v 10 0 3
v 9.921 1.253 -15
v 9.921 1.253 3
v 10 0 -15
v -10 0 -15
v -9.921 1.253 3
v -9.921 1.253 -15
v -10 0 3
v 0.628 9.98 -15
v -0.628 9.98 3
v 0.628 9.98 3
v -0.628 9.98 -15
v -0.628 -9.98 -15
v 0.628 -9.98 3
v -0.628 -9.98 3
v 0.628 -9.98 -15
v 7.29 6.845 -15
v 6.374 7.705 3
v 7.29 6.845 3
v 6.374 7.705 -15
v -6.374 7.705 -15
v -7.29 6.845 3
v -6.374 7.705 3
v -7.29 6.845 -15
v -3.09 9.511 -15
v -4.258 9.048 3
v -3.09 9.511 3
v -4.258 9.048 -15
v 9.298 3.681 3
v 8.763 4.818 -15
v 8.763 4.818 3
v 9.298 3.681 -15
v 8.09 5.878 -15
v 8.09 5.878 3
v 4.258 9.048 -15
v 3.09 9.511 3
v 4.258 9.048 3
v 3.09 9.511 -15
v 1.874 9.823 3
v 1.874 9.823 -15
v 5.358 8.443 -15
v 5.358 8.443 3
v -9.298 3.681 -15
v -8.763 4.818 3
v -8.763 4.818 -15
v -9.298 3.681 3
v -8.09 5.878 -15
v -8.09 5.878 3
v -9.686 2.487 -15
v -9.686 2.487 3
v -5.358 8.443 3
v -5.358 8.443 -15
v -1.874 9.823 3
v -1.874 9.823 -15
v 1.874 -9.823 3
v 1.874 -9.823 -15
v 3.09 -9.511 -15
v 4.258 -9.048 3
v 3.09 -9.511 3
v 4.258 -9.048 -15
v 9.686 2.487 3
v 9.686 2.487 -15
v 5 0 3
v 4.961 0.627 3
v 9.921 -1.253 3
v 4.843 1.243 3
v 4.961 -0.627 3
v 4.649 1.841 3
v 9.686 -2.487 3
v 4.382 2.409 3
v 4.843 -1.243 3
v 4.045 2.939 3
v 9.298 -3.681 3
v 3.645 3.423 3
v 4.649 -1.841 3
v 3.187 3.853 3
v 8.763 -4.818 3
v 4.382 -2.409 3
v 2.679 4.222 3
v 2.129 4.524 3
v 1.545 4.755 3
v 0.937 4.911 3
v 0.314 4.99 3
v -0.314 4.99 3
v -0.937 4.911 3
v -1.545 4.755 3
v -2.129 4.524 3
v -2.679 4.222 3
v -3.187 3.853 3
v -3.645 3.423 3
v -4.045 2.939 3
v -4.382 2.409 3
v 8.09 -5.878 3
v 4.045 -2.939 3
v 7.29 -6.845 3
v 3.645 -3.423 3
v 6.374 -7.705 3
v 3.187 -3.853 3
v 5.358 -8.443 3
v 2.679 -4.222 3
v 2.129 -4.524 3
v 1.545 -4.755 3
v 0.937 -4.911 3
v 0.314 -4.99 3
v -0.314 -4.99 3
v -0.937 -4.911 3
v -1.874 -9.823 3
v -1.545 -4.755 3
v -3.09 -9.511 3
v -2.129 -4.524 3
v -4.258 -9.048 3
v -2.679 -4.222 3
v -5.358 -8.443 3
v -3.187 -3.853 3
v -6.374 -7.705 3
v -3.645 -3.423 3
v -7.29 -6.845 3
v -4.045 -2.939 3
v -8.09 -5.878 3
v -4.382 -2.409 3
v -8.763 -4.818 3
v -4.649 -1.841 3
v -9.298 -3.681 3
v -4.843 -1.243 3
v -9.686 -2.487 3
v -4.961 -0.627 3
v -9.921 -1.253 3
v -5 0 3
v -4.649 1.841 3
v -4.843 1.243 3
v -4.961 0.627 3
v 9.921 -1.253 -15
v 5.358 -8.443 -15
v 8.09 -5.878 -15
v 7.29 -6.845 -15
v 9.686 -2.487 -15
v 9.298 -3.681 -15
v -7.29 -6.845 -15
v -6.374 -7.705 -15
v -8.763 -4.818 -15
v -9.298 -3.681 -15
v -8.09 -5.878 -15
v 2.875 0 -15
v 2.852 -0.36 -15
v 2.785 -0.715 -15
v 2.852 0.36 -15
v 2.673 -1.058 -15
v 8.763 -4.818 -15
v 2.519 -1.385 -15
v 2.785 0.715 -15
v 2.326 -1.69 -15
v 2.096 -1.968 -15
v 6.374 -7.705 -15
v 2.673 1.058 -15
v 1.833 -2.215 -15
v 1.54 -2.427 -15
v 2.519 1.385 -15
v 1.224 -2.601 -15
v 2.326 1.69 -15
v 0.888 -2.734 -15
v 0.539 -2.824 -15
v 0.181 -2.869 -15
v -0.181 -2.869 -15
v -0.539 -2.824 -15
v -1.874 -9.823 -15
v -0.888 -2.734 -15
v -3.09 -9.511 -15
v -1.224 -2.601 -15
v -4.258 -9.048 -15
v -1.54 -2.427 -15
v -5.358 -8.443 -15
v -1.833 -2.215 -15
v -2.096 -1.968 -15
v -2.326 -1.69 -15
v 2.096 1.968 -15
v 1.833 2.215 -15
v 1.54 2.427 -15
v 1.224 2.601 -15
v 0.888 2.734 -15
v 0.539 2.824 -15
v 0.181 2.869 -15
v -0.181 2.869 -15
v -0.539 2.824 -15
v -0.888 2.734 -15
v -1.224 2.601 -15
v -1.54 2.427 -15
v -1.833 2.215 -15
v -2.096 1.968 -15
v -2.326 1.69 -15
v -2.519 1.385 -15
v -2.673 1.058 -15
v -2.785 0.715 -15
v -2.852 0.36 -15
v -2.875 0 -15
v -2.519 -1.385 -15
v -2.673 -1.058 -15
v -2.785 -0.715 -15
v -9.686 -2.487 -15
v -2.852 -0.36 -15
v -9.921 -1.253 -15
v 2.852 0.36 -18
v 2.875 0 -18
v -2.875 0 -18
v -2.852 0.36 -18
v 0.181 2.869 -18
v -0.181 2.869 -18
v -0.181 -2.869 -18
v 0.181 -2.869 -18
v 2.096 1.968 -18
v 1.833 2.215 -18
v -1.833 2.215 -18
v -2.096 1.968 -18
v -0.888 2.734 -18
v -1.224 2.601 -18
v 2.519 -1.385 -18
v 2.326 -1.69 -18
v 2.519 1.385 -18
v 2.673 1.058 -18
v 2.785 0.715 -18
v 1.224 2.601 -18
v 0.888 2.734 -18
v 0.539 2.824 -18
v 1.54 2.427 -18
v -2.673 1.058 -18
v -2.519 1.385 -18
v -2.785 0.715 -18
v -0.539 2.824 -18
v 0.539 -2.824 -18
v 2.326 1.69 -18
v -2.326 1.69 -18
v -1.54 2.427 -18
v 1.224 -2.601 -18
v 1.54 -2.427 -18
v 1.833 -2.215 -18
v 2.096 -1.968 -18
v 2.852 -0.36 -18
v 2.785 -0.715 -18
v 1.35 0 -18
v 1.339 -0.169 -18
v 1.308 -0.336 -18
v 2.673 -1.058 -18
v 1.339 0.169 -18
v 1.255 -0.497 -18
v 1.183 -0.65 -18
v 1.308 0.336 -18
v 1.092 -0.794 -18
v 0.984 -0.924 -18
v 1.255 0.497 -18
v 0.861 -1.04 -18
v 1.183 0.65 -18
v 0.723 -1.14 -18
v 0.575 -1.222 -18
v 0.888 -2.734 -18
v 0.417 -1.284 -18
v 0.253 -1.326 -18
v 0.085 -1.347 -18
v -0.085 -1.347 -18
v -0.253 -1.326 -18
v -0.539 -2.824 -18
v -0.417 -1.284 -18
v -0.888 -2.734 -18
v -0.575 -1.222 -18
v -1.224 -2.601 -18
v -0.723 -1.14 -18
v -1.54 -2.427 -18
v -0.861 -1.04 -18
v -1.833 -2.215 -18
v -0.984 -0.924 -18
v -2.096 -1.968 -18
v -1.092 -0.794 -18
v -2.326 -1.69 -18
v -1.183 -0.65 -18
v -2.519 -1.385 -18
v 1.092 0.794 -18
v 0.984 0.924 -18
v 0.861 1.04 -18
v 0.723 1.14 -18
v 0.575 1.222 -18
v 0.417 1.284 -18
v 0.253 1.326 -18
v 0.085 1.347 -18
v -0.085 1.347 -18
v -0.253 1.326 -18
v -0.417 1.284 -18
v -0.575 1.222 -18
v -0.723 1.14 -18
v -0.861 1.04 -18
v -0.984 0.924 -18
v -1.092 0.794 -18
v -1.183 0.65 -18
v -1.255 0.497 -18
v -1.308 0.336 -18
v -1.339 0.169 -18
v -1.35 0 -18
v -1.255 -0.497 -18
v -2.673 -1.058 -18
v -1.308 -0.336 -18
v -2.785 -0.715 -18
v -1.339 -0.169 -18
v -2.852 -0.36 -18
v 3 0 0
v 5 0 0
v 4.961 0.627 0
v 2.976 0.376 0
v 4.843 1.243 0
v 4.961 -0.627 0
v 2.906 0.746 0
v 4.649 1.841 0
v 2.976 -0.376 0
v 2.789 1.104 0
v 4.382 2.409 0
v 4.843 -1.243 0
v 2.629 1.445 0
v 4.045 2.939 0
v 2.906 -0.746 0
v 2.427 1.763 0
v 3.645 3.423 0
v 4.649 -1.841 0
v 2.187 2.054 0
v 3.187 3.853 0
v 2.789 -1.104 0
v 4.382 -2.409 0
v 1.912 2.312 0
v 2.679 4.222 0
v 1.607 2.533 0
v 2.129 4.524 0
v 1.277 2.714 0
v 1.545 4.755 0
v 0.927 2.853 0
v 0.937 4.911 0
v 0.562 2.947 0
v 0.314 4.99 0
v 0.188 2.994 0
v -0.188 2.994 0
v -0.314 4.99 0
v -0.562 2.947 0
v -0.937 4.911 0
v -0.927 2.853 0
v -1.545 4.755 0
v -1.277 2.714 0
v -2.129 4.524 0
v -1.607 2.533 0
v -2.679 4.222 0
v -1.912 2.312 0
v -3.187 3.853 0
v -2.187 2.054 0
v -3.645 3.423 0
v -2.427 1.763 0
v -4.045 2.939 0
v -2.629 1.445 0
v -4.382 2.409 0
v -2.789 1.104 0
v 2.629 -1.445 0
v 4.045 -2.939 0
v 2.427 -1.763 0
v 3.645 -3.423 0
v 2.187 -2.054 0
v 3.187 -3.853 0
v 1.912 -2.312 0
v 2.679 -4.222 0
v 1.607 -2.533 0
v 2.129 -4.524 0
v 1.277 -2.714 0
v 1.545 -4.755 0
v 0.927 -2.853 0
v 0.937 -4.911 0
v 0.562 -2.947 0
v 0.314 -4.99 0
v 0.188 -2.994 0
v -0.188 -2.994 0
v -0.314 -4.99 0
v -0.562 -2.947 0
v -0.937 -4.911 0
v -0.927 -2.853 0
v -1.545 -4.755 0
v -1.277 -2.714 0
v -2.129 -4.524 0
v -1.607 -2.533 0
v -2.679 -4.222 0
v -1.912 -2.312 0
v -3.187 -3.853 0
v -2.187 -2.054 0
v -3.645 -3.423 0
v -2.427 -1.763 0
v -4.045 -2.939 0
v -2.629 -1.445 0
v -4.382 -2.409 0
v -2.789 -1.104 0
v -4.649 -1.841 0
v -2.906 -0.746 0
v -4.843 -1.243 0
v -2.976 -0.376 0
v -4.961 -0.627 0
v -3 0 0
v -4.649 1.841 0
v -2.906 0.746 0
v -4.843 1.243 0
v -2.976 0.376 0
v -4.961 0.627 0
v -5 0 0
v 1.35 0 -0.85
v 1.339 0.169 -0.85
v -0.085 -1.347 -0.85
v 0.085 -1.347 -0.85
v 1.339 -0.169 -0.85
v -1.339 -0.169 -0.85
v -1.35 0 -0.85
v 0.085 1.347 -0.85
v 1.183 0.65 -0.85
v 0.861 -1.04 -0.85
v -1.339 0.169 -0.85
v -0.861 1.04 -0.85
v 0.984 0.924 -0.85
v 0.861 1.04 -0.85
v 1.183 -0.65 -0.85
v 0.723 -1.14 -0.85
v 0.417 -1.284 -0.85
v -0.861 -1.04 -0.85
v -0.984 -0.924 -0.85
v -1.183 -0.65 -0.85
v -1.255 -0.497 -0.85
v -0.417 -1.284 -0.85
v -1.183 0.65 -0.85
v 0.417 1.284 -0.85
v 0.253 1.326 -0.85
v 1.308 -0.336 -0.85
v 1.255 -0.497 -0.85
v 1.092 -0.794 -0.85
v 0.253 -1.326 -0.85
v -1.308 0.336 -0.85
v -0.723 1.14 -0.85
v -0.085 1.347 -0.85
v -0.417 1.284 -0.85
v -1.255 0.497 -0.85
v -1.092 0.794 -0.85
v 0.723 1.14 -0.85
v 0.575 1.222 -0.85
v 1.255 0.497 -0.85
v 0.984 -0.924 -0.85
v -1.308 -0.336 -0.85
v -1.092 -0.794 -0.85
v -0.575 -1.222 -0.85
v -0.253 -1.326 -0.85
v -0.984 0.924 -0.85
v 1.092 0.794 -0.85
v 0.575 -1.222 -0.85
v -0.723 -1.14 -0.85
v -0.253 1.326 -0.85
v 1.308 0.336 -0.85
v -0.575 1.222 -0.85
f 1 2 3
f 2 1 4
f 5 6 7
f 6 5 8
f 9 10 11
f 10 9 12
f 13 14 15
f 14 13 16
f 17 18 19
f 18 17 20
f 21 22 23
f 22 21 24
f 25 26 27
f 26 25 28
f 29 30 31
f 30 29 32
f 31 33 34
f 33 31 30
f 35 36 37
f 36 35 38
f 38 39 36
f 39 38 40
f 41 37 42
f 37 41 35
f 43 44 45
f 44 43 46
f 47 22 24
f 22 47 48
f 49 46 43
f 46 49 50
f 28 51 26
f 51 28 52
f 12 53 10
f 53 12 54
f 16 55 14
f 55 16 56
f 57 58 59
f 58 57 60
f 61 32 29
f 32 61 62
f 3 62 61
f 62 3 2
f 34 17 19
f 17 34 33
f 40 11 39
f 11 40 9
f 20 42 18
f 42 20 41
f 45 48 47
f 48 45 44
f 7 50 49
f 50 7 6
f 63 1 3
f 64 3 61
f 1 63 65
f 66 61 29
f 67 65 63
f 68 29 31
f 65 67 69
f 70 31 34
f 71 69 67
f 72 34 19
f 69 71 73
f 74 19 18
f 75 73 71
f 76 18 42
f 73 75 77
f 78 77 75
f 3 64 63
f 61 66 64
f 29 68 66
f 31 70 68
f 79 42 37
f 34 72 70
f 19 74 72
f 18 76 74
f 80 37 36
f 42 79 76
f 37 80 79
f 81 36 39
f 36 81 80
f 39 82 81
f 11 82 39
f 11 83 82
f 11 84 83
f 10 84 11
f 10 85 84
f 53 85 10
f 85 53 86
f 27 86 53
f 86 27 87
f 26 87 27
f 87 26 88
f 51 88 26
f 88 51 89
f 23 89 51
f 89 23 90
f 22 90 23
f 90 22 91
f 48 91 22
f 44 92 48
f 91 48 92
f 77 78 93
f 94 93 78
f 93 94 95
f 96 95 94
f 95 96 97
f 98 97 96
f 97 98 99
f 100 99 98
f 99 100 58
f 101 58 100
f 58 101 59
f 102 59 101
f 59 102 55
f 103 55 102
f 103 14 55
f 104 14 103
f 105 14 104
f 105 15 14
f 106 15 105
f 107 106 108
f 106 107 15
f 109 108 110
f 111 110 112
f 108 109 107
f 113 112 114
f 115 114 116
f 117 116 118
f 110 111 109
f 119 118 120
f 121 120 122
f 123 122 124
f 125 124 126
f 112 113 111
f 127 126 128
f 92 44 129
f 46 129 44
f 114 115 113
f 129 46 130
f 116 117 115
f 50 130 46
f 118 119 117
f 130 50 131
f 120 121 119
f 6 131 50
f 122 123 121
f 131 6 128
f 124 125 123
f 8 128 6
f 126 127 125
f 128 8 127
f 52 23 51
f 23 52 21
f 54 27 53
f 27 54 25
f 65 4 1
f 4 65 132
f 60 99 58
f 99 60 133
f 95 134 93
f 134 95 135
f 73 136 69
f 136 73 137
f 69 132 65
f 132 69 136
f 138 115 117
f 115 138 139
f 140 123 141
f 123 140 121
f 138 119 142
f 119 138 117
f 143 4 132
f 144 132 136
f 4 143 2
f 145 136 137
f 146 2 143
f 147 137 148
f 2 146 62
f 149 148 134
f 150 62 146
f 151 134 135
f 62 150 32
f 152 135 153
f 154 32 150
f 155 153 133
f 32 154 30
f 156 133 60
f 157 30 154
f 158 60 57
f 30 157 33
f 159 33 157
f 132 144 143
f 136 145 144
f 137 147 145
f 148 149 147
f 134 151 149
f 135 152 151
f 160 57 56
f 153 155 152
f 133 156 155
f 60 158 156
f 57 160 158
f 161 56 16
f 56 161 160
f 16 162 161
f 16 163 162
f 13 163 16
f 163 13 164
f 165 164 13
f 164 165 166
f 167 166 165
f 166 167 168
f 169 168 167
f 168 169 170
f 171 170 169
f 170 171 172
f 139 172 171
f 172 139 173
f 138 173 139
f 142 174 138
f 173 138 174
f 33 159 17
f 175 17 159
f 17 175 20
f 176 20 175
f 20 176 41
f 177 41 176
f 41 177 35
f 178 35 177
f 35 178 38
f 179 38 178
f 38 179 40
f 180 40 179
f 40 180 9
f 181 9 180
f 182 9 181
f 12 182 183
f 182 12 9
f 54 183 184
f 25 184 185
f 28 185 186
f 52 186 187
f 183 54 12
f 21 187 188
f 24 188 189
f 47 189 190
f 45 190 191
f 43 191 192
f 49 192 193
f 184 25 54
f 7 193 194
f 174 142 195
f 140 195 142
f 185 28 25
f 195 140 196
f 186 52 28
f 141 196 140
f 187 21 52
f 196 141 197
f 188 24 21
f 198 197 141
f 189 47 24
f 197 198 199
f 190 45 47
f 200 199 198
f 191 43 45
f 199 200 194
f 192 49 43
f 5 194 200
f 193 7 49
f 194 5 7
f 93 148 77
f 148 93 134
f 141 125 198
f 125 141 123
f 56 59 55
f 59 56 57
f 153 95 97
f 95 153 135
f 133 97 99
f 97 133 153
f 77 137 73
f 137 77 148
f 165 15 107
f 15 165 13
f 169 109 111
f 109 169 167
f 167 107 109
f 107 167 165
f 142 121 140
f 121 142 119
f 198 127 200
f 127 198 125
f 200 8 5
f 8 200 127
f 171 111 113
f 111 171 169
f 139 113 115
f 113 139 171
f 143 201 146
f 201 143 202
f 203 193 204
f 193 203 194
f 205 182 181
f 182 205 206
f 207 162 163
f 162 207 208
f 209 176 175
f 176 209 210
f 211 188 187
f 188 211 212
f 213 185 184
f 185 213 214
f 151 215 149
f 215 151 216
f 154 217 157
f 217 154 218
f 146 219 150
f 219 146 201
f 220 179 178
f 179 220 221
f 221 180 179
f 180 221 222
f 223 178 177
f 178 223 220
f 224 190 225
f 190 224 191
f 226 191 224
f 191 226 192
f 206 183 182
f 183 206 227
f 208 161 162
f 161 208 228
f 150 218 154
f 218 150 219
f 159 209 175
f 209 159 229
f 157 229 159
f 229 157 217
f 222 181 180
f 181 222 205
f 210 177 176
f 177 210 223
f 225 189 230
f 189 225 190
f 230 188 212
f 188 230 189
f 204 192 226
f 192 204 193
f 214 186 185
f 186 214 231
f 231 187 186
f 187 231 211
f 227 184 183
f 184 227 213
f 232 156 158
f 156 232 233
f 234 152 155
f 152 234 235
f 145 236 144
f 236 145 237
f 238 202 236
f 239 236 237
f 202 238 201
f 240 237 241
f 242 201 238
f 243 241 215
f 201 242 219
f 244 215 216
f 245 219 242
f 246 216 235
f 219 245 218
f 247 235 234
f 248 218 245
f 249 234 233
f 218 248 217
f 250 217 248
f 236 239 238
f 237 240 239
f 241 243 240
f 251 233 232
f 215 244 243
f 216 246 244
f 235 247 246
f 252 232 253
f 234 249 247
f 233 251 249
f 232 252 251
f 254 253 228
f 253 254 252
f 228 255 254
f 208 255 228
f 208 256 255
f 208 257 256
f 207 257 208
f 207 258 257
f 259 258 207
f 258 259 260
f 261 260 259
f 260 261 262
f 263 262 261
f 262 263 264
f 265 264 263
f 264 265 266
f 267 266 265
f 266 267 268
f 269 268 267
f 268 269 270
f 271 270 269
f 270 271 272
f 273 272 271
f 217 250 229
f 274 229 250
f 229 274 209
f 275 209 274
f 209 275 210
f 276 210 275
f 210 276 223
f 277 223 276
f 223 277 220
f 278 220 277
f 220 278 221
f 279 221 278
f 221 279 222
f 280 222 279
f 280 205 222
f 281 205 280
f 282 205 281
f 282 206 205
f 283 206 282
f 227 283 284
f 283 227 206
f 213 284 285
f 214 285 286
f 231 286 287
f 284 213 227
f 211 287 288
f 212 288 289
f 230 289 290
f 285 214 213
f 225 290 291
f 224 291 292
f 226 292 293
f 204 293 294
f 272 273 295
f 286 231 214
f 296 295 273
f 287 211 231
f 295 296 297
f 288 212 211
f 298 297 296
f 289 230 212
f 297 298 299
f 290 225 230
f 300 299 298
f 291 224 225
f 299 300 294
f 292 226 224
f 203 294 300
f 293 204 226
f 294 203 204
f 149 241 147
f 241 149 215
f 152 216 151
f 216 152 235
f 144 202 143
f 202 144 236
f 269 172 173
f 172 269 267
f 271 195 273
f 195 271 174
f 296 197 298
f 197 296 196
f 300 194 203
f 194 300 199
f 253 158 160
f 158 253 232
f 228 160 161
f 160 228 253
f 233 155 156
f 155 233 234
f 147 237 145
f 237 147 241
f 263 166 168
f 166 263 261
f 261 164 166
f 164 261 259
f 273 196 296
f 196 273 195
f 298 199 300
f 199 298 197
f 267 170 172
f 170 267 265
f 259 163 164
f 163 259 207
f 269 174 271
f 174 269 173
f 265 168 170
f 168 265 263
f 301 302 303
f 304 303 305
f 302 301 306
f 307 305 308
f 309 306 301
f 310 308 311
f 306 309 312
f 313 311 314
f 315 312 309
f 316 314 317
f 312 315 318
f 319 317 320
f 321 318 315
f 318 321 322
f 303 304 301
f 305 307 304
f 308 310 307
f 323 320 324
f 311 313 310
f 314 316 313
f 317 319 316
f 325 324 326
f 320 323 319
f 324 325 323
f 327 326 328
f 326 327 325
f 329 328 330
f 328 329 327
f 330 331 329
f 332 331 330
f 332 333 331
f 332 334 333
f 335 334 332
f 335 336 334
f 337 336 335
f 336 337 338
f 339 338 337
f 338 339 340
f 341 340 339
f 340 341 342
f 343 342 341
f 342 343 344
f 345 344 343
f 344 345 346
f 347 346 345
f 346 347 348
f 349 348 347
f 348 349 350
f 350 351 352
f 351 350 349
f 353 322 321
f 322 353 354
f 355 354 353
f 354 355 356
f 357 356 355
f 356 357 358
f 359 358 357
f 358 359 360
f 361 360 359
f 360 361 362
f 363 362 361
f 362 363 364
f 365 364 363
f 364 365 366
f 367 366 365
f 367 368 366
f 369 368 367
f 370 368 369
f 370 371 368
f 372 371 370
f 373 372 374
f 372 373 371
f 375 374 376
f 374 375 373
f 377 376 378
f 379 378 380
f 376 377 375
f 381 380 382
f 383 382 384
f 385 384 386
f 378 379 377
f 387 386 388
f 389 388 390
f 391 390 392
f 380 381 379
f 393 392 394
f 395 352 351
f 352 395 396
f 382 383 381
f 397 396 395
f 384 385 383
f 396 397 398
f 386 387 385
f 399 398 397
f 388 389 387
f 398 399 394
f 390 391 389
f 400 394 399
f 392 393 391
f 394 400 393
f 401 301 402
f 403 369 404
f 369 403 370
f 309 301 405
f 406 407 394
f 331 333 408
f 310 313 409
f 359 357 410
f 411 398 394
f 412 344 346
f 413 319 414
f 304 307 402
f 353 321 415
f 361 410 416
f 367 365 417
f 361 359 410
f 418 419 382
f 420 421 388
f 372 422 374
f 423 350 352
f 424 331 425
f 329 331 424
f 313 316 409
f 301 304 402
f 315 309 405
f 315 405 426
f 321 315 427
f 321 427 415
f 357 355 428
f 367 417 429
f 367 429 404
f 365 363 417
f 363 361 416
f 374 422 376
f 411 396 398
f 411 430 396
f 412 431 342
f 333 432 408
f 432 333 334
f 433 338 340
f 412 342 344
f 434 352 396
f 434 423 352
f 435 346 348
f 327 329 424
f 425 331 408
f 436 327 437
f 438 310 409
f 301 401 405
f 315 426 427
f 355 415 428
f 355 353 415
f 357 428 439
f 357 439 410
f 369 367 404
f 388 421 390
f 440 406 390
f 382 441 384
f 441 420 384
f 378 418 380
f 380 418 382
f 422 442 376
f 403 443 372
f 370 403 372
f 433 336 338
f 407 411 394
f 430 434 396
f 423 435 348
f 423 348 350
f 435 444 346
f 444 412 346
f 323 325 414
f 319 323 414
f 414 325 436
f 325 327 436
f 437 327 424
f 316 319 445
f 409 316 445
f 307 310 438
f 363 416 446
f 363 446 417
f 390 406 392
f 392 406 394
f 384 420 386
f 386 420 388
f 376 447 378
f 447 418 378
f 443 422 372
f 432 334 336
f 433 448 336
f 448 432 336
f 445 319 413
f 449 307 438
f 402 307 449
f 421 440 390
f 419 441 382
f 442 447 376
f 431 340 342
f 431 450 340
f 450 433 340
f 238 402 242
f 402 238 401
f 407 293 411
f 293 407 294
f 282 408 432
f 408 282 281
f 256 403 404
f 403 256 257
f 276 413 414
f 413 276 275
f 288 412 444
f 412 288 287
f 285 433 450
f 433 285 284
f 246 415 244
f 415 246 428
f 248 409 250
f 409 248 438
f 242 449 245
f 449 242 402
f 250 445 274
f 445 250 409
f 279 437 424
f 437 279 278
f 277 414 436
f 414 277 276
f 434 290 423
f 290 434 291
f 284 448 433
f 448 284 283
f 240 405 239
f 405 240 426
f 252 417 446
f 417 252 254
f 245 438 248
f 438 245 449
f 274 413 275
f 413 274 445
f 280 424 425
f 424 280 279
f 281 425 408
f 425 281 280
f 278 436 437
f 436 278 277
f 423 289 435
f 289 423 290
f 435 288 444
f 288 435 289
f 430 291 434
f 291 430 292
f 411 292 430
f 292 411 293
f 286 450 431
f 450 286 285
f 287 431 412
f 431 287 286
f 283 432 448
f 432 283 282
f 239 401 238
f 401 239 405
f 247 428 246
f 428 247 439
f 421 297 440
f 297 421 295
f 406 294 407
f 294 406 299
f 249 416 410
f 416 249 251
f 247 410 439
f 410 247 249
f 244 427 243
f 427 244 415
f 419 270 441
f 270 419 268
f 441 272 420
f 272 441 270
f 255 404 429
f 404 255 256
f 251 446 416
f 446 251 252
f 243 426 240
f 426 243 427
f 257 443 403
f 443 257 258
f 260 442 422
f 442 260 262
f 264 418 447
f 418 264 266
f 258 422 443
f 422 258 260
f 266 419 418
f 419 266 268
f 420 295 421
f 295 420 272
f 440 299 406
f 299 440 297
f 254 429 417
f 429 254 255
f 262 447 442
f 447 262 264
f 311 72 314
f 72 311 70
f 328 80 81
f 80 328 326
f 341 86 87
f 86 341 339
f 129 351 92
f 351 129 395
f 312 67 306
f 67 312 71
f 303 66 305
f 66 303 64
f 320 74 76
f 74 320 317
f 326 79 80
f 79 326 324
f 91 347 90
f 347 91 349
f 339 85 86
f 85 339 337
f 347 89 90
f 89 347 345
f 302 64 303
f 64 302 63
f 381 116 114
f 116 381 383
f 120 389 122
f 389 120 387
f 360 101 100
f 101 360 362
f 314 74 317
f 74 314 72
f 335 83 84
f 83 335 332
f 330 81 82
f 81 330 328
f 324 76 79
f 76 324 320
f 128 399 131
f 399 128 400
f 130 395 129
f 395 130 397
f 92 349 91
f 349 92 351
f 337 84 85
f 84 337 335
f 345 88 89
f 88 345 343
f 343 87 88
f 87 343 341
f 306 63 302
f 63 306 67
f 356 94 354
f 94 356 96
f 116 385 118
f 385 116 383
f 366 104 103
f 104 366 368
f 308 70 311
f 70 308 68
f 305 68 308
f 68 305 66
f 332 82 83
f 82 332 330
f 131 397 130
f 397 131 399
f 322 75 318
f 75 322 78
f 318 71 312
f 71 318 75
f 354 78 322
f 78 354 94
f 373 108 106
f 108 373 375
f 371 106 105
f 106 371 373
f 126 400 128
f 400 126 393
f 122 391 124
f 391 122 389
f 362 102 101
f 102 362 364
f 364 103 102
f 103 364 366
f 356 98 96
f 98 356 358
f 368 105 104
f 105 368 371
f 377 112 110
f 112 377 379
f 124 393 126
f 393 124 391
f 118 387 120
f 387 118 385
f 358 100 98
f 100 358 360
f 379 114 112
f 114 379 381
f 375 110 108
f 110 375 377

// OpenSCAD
$fn = 50;


difference() {
	union() {
		translate(v = [0, 0, -15.0000000000]) {
			cylinder(h = 18, r = 10.0000000000);
		}
		#translate(v = [0, 0, -18.0000000000]) {
			cylinder(h = 18, r = 2.8750000000);
		}
	}
	union() {
		translate(v = [0, 0, 0]) {
			rotate(a = [0, 0, 0]) {
				difference() {
					union() {
						translate(v = [0, 0, -18.0000000000]) {
							cylinder(h = 18, r = 1.0000000000);
						}
						translate(v = [0, 0, -0.8500000000]) {
							cylinder(h = 0.8500000000, r1 = 1.3500000000, r2 = 3.0000000000);
						}
						translate(v = [0, 0, -18.0000000000]) {
							cylinder(h = 18, r = 1.3500000000);
						}
						translate(v = [0, 0, -18.0000000000]) {
							cylinder(h = 18, r = 1.0000000000);
						}
					}
					union();
				}
			}
		}
		#cylinder(h = 3, r = 5.0000000000);
	}
}
